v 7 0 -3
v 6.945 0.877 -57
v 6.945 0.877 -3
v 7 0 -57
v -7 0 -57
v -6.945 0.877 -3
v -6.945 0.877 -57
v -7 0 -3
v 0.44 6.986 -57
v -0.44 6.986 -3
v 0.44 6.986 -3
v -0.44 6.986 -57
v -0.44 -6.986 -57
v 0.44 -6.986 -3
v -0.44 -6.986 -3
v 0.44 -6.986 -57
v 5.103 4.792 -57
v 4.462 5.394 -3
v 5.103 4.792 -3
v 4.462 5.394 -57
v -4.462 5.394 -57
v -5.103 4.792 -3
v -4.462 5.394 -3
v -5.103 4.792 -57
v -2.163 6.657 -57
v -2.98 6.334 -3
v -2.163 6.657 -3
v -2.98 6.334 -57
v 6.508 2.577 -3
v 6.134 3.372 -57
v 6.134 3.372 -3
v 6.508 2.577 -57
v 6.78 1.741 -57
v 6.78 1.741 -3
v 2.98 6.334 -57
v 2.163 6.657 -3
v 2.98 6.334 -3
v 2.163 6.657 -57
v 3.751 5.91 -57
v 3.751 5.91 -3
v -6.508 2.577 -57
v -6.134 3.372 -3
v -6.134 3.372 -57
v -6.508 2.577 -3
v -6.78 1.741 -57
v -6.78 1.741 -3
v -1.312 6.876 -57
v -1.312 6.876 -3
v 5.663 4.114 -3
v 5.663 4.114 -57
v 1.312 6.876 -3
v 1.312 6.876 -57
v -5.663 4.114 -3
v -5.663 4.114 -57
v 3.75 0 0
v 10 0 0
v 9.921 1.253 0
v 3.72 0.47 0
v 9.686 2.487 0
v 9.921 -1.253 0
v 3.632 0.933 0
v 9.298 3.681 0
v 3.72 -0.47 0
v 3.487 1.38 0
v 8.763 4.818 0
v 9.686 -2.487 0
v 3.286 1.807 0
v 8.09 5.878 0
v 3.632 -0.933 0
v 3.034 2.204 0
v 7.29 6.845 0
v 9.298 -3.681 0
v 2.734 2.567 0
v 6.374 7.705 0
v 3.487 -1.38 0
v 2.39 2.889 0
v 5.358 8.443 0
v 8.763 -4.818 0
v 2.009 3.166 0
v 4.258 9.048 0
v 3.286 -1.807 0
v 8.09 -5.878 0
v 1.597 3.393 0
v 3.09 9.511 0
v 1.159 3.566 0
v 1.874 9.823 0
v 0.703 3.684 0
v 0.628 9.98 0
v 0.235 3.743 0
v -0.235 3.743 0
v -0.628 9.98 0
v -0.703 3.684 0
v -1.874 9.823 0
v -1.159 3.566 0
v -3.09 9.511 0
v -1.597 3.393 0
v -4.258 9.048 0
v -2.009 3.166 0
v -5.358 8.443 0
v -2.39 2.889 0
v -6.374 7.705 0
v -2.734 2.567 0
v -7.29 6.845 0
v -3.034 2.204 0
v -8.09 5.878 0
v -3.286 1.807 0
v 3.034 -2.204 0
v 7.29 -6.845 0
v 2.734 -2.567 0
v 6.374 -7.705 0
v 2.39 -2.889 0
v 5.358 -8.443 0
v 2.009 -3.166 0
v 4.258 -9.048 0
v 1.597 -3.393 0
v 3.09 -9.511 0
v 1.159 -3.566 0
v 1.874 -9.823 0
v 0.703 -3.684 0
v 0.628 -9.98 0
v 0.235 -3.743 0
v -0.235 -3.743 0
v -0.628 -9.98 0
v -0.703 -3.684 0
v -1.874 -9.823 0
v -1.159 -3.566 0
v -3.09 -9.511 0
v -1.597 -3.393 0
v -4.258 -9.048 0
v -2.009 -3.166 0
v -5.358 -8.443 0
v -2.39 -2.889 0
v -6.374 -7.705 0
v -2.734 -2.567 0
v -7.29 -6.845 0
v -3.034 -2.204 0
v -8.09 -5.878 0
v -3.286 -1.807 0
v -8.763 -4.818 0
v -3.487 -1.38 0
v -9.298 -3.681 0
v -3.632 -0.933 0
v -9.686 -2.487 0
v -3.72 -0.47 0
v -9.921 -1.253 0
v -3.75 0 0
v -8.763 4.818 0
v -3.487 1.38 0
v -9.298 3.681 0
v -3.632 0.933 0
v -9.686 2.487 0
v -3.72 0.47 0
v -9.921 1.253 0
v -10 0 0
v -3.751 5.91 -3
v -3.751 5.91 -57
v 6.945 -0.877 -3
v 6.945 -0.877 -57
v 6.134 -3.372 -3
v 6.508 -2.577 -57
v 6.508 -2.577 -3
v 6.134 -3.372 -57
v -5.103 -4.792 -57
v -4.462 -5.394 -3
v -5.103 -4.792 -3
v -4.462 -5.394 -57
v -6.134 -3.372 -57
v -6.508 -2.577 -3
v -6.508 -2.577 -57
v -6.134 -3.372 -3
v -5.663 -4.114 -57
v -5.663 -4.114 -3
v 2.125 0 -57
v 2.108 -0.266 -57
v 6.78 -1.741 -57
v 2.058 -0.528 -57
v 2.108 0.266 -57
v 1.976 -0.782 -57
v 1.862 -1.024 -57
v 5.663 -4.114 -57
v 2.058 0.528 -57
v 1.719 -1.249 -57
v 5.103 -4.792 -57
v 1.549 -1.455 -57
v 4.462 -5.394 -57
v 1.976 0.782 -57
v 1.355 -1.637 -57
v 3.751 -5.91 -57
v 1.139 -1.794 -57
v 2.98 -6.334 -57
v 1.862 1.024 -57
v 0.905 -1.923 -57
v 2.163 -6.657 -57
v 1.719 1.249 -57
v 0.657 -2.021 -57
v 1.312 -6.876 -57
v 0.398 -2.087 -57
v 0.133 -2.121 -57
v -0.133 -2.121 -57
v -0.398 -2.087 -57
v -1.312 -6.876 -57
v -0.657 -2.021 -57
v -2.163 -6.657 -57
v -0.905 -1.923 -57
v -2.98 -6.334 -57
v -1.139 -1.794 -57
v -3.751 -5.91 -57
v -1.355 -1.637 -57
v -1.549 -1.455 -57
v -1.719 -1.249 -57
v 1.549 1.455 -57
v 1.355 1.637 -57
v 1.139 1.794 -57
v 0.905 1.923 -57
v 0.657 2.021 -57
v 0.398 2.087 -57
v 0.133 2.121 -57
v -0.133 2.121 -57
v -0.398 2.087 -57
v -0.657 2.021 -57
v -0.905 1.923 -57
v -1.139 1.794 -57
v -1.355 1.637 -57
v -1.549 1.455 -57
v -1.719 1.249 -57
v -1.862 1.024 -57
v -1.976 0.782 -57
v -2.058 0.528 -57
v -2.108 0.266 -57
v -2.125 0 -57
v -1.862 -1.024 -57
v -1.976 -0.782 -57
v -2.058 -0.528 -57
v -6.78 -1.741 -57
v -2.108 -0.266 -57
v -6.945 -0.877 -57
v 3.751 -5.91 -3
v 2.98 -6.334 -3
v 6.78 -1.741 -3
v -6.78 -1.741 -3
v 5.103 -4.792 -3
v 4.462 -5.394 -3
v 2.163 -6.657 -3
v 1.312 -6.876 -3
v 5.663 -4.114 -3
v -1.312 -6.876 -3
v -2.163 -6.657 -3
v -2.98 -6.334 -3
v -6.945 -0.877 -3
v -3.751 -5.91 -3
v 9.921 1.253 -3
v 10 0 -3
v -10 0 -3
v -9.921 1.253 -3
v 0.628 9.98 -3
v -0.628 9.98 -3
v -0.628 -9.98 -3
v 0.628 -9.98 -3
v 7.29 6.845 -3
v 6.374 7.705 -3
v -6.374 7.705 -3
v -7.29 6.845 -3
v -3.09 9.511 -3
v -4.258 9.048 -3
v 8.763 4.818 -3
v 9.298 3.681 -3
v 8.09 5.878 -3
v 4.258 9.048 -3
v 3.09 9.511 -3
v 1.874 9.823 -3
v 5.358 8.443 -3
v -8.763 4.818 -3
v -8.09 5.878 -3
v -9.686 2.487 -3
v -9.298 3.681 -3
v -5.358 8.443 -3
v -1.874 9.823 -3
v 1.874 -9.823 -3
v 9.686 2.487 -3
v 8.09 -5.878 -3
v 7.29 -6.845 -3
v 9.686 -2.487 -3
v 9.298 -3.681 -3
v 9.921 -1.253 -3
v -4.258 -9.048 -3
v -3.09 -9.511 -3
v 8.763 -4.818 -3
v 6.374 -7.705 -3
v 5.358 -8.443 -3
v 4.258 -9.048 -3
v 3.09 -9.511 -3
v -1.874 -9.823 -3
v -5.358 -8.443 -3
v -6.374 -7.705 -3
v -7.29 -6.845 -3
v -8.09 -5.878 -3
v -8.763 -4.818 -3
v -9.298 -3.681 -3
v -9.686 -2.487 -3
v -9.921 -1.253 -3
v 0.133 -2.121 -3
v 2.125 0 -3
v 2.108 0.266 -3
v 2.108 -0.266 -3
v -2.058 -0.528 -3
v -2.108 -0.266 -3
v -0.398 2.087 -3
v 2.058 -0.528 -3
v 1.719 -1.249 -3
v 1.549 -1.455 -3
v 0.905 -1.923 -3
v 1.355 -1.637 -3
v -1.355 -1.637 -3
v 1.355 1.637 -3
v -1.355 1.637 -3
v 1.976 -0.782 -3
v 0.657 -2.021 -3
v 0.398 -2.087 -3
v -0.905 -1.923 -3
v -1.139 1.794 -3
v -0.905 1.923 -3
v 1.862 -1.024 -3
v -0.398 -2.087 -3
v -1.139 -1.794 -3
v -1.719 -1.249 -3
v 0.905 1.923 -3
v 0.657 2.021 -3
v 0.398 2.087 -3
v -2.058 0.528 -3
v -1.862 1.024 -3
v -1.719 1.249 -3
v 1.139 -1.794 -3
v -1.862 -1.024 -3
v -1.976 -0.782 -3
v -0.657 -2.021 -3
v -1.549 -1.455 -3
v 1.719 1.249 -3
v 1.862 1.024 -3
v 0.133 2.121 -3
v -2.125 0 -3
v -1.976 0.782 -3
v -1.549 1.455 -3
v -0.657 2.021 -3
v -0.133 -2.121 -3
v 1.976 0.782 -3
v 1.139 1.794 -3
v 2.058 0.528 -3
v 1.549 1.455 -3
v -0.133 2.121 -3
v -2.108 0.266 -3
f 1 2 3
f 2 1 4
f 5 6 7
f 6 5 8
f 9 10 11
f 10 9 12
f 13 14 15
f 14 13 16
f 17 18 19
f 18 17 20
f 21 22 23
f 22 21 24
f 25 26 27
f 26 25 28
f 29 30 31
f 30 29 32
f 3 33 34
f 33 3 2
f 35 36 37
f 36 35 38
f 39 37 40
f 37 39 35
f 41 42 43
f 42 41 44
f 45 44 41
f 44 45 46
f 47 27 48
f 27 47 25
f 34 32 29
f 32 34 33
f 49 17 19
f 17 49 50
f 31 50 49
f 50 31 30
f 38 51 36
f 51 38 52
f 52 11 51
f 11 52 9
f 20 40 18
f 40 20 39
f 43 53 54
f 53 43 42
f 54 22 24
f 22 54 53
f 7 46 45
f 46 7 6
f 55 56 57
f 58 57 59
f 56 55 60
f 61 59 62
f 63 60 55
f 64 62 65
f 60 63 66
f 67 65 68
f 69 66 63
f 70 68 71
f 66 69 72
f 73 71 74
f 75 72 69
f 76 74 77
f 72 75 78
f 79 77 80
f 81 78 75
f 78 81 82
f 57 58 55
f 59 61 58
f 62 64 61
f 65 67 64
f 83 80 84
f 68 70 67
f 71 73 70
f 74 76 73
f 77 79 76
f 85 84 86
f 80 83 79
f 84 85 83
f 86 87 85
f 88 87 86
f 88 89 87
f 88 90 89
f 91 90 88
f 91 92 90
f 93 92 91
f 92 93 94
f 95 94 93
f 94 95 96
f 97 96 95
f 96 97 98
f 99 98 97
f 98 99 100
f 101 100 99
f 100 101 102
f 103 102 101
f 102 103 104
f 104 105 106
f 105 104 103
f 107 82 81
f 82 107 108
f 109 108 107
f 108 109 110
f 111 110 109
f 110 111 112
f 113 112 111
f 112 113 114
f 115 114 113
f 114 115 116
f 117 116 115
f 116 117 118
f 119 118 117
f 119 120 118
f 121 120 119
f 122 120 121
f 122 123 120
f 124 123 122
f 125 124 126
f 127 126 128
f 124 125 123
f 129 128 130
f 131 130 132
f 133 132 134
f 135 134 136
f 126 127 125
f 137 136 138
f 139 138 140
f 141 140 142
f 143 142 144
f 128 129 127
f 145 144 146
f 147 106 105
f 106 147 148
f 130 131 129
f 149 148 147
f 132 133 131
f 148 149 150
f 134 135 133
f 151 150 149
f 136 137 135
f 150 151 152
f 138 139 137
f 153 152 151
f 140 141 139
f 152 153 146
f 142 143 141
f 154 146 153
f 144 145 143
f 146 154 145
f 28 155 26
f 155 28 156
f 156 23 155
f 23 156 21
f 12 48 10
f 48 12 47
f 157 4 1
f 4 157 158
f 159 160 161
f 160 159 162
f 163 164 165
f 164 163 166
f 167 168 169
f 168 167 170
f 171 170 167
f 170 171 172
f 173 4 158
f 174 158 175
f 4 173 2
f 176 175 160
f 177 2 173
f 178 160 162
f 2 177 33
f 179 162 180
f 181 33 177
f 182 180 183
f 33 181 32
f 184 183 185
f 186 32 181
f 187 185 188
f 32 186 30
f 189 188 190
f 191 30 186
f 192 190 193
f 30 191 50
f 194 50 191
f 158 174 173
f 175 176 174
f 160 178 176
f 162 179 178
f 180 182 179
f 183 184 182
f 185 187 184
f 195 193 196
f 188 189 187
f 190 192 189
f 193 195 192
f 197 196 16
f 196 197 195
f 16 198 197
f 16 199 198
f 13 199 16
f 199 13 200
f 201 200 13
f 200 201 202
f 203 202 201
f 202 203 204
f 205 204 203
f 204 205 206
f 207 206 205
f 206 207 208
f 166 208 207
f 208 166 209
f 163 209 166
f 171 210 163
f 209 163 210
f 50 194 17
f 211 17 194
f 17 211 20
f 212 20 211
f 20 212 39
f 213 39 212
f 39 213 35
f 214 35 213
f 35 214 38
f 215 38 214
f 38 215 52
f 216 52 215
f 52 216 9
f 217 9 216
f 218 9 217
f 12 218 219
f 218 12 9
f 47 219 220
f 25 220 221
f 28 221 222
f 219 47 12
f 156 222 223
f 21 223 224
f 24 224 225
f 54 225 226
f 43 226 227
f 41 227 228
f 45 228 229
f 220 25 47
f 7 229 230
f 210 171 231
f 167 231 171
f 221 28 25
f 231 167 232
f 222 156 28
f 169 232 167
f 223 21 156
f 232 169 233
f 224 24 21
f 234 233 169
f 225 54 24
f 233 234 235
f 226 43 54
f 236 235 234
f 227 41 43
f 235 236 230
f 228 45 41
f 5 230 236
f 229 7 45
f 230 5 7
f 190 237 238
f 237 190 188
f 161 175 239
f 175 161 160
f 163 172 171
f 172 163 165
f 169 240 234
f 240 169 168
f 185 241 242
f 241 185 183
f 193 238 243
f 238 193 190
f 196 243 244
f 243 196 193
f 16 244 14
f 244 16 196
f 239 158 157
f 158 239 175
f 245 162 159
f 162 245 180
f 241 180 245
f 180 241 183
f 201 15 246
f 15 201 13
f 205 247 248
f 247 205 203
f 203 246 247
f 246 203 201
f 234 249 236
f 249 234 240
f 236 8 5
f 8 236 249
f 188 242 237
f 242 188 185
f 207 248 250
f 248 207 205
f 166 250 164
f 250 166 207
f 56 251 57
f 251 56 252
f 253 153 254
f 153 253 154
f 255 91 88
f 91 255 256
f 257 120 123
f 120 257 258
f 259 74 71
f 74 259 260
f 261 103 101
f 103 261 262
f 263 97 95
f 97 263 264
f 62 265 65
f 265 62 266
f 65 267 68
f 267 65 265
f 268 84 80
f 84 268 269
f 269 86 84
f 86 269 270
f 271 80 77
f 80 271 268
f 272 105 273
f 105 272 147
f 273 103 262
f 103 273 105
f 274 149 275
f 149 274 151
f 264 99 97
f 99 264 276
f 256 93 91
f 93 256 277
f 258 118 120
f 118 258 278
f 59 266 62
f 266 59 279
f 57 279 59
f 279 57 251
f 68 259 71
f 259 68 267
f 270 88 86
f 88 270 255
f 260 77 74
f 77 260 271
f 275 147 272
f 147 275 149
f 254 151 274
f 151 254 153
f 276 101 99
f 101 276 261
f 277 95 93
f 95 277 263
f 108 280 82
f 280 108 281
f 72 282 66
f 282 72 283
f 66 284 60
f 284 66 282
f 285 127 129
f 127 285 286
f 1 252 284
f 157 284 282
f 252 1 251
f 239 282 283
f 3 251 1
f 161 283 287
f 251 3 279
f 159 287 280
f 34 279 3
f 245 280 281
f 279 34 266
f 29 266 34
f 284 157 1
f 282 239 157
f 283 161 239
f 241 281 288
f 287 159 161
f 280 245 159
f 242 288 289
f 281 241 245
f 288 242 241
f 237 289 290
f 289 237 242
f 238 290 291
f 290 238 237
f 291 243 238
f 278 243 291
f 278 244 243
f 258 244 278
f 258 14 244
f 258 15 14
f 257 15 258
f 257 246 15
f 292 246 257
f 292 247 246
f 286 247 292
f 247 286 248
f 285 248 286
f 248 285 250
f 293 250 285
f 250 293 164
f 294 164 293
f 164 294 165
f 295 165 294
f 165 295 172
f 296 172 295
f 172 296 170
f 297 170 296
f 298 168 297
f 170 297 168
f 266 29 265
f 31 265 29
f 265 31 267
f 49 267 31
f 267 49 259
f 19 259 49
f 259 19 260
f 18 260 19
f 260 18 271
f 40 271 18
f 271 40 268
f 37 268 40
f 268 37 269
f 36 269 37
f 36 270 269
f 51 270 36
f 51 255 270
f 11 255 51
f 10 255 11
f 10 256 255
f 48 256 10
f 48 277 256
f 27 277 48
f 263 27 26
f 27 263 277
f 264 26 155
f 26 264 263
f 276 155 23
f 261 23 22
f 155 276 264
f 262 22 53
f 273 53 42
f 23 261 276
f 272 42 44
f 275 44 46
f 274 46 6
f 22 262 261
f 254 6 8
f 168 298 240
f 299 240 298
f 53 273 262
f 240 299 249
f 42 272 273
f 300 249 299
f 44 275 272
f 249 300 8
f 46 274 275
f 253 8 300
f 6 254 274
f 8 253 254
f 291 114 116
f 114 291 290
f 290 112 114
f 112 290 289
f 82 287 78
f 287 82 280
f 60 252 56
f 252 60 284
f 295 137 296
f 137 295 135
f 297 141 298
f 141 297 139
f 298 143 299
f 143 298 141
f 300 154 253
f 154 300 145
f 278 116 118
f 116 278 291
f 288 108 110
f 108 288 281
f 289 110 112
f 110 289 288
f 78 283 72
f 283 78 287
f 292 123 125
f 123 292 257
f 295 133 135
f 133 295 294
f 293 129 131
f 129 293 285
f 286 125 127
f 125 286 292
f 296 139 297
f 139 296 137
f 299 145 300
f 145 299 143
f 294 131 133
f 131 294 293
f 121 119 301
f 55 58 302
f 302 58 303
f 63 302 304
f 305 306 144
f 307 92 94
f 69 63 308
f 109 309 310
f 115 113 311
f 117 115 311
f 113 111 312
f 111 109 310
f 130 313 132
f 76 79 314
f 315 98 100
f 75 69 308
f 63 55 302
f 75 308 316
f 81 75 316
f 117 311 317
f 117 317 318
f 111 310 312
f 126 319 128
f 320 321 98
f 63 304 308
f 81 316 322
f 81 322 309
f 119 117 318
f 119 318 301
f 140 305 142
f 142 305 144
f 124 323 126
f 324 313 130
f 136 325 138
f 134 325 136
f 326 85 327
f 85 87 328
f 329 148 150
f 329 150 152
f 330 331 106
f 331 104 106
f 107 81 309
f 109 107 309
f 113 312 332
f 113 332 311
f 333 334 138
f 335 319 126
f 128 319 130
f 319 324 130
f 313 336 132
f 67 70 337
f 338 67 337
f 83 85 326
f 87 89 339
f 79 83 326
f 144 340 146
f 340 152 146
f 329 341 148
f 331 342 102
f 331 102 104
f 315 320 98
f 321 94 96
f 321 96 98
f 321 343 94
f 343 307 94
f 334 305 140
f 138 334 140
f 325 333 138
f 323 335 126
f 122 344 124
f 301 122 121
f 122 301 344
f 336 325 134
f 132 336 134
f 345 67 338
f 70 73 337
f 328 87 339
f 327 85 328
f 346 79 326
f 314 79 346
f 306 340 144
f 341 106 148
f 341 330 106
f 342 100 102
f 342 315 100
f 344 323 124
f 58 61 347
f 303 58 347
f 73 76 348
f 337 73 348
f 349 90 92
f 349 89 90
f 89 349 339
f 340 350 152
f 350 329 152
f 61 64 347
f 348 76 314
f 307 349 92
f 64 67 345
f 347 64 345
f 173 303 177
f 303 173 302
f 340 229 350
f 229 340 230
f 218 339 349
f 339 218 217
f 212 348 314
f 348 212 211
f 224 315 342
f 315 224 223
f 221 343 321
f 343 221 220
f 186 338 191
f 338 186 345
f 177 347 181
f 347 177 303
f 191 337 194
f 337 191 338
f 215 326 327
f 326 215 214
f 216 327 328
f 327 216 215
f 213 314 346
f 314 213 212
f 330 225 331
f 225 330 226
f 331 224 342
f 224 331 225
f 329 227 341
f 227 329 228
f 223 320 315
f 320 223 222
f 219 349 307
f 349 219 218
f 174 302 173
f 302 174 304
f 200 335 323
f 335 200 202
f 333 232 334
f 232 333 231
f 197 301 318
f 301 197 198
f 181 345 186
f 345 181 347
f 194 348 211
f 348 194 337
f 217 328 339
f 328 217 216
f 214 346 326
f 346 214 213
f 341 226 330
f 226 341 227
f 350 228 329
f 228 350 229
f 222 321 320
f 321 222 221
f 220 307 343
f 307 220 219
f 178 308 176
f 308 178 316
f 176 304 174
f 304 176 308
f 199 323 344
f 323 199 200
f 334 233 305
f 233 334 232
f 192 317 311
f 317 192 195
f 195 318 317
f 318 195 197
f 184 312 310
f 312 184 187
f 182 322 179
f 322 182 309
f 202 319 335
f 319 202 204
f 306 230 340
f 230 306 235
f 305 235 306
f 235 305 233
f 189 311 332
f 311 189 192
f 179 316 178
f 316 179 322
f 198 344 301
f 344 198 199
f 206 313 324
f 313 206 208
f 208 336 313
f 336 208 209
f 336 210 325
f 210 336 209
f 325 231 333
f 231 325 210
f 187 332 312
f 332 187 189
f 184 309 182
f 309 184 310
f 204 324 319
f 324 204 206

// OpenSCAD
$fn = 50;


difference() {
	union() {
		translate(v = [0, 0, -57.0000000000]) {
			cylinder(h = 57, r = 7.0000000000);
		}
		translate(v = [0, 0, -3.0000000000]) {
			cylinder(h = 3, r = 10.0000000000);
		}
	}
	union() {
		translate(v = [0, 0, 0]) {
			rotate(a = [0, 0, 0]) {
				difference() {
					union() {
						#translate(v = [0, 0, -57.0000000000]) {
							cylinder(h = 57, r = 2.0000000000);
						}
						#translate(v = [0, 0, -3]) {
							cylinder(h = 3, r1 = 2.1250000000, r2 = 3.7500000000);
						}
						#translate(v = [0, 0, -57.0000000000]) {
							cylinder(h = 57, r = 2.1250000000);
						}
						#translate(v = [0, 0, -57.0000000000]) {
							cylinder(h = 57, r = 2.0000000000);
						}
					}
					union();
				}
			}
		}
	}
}
